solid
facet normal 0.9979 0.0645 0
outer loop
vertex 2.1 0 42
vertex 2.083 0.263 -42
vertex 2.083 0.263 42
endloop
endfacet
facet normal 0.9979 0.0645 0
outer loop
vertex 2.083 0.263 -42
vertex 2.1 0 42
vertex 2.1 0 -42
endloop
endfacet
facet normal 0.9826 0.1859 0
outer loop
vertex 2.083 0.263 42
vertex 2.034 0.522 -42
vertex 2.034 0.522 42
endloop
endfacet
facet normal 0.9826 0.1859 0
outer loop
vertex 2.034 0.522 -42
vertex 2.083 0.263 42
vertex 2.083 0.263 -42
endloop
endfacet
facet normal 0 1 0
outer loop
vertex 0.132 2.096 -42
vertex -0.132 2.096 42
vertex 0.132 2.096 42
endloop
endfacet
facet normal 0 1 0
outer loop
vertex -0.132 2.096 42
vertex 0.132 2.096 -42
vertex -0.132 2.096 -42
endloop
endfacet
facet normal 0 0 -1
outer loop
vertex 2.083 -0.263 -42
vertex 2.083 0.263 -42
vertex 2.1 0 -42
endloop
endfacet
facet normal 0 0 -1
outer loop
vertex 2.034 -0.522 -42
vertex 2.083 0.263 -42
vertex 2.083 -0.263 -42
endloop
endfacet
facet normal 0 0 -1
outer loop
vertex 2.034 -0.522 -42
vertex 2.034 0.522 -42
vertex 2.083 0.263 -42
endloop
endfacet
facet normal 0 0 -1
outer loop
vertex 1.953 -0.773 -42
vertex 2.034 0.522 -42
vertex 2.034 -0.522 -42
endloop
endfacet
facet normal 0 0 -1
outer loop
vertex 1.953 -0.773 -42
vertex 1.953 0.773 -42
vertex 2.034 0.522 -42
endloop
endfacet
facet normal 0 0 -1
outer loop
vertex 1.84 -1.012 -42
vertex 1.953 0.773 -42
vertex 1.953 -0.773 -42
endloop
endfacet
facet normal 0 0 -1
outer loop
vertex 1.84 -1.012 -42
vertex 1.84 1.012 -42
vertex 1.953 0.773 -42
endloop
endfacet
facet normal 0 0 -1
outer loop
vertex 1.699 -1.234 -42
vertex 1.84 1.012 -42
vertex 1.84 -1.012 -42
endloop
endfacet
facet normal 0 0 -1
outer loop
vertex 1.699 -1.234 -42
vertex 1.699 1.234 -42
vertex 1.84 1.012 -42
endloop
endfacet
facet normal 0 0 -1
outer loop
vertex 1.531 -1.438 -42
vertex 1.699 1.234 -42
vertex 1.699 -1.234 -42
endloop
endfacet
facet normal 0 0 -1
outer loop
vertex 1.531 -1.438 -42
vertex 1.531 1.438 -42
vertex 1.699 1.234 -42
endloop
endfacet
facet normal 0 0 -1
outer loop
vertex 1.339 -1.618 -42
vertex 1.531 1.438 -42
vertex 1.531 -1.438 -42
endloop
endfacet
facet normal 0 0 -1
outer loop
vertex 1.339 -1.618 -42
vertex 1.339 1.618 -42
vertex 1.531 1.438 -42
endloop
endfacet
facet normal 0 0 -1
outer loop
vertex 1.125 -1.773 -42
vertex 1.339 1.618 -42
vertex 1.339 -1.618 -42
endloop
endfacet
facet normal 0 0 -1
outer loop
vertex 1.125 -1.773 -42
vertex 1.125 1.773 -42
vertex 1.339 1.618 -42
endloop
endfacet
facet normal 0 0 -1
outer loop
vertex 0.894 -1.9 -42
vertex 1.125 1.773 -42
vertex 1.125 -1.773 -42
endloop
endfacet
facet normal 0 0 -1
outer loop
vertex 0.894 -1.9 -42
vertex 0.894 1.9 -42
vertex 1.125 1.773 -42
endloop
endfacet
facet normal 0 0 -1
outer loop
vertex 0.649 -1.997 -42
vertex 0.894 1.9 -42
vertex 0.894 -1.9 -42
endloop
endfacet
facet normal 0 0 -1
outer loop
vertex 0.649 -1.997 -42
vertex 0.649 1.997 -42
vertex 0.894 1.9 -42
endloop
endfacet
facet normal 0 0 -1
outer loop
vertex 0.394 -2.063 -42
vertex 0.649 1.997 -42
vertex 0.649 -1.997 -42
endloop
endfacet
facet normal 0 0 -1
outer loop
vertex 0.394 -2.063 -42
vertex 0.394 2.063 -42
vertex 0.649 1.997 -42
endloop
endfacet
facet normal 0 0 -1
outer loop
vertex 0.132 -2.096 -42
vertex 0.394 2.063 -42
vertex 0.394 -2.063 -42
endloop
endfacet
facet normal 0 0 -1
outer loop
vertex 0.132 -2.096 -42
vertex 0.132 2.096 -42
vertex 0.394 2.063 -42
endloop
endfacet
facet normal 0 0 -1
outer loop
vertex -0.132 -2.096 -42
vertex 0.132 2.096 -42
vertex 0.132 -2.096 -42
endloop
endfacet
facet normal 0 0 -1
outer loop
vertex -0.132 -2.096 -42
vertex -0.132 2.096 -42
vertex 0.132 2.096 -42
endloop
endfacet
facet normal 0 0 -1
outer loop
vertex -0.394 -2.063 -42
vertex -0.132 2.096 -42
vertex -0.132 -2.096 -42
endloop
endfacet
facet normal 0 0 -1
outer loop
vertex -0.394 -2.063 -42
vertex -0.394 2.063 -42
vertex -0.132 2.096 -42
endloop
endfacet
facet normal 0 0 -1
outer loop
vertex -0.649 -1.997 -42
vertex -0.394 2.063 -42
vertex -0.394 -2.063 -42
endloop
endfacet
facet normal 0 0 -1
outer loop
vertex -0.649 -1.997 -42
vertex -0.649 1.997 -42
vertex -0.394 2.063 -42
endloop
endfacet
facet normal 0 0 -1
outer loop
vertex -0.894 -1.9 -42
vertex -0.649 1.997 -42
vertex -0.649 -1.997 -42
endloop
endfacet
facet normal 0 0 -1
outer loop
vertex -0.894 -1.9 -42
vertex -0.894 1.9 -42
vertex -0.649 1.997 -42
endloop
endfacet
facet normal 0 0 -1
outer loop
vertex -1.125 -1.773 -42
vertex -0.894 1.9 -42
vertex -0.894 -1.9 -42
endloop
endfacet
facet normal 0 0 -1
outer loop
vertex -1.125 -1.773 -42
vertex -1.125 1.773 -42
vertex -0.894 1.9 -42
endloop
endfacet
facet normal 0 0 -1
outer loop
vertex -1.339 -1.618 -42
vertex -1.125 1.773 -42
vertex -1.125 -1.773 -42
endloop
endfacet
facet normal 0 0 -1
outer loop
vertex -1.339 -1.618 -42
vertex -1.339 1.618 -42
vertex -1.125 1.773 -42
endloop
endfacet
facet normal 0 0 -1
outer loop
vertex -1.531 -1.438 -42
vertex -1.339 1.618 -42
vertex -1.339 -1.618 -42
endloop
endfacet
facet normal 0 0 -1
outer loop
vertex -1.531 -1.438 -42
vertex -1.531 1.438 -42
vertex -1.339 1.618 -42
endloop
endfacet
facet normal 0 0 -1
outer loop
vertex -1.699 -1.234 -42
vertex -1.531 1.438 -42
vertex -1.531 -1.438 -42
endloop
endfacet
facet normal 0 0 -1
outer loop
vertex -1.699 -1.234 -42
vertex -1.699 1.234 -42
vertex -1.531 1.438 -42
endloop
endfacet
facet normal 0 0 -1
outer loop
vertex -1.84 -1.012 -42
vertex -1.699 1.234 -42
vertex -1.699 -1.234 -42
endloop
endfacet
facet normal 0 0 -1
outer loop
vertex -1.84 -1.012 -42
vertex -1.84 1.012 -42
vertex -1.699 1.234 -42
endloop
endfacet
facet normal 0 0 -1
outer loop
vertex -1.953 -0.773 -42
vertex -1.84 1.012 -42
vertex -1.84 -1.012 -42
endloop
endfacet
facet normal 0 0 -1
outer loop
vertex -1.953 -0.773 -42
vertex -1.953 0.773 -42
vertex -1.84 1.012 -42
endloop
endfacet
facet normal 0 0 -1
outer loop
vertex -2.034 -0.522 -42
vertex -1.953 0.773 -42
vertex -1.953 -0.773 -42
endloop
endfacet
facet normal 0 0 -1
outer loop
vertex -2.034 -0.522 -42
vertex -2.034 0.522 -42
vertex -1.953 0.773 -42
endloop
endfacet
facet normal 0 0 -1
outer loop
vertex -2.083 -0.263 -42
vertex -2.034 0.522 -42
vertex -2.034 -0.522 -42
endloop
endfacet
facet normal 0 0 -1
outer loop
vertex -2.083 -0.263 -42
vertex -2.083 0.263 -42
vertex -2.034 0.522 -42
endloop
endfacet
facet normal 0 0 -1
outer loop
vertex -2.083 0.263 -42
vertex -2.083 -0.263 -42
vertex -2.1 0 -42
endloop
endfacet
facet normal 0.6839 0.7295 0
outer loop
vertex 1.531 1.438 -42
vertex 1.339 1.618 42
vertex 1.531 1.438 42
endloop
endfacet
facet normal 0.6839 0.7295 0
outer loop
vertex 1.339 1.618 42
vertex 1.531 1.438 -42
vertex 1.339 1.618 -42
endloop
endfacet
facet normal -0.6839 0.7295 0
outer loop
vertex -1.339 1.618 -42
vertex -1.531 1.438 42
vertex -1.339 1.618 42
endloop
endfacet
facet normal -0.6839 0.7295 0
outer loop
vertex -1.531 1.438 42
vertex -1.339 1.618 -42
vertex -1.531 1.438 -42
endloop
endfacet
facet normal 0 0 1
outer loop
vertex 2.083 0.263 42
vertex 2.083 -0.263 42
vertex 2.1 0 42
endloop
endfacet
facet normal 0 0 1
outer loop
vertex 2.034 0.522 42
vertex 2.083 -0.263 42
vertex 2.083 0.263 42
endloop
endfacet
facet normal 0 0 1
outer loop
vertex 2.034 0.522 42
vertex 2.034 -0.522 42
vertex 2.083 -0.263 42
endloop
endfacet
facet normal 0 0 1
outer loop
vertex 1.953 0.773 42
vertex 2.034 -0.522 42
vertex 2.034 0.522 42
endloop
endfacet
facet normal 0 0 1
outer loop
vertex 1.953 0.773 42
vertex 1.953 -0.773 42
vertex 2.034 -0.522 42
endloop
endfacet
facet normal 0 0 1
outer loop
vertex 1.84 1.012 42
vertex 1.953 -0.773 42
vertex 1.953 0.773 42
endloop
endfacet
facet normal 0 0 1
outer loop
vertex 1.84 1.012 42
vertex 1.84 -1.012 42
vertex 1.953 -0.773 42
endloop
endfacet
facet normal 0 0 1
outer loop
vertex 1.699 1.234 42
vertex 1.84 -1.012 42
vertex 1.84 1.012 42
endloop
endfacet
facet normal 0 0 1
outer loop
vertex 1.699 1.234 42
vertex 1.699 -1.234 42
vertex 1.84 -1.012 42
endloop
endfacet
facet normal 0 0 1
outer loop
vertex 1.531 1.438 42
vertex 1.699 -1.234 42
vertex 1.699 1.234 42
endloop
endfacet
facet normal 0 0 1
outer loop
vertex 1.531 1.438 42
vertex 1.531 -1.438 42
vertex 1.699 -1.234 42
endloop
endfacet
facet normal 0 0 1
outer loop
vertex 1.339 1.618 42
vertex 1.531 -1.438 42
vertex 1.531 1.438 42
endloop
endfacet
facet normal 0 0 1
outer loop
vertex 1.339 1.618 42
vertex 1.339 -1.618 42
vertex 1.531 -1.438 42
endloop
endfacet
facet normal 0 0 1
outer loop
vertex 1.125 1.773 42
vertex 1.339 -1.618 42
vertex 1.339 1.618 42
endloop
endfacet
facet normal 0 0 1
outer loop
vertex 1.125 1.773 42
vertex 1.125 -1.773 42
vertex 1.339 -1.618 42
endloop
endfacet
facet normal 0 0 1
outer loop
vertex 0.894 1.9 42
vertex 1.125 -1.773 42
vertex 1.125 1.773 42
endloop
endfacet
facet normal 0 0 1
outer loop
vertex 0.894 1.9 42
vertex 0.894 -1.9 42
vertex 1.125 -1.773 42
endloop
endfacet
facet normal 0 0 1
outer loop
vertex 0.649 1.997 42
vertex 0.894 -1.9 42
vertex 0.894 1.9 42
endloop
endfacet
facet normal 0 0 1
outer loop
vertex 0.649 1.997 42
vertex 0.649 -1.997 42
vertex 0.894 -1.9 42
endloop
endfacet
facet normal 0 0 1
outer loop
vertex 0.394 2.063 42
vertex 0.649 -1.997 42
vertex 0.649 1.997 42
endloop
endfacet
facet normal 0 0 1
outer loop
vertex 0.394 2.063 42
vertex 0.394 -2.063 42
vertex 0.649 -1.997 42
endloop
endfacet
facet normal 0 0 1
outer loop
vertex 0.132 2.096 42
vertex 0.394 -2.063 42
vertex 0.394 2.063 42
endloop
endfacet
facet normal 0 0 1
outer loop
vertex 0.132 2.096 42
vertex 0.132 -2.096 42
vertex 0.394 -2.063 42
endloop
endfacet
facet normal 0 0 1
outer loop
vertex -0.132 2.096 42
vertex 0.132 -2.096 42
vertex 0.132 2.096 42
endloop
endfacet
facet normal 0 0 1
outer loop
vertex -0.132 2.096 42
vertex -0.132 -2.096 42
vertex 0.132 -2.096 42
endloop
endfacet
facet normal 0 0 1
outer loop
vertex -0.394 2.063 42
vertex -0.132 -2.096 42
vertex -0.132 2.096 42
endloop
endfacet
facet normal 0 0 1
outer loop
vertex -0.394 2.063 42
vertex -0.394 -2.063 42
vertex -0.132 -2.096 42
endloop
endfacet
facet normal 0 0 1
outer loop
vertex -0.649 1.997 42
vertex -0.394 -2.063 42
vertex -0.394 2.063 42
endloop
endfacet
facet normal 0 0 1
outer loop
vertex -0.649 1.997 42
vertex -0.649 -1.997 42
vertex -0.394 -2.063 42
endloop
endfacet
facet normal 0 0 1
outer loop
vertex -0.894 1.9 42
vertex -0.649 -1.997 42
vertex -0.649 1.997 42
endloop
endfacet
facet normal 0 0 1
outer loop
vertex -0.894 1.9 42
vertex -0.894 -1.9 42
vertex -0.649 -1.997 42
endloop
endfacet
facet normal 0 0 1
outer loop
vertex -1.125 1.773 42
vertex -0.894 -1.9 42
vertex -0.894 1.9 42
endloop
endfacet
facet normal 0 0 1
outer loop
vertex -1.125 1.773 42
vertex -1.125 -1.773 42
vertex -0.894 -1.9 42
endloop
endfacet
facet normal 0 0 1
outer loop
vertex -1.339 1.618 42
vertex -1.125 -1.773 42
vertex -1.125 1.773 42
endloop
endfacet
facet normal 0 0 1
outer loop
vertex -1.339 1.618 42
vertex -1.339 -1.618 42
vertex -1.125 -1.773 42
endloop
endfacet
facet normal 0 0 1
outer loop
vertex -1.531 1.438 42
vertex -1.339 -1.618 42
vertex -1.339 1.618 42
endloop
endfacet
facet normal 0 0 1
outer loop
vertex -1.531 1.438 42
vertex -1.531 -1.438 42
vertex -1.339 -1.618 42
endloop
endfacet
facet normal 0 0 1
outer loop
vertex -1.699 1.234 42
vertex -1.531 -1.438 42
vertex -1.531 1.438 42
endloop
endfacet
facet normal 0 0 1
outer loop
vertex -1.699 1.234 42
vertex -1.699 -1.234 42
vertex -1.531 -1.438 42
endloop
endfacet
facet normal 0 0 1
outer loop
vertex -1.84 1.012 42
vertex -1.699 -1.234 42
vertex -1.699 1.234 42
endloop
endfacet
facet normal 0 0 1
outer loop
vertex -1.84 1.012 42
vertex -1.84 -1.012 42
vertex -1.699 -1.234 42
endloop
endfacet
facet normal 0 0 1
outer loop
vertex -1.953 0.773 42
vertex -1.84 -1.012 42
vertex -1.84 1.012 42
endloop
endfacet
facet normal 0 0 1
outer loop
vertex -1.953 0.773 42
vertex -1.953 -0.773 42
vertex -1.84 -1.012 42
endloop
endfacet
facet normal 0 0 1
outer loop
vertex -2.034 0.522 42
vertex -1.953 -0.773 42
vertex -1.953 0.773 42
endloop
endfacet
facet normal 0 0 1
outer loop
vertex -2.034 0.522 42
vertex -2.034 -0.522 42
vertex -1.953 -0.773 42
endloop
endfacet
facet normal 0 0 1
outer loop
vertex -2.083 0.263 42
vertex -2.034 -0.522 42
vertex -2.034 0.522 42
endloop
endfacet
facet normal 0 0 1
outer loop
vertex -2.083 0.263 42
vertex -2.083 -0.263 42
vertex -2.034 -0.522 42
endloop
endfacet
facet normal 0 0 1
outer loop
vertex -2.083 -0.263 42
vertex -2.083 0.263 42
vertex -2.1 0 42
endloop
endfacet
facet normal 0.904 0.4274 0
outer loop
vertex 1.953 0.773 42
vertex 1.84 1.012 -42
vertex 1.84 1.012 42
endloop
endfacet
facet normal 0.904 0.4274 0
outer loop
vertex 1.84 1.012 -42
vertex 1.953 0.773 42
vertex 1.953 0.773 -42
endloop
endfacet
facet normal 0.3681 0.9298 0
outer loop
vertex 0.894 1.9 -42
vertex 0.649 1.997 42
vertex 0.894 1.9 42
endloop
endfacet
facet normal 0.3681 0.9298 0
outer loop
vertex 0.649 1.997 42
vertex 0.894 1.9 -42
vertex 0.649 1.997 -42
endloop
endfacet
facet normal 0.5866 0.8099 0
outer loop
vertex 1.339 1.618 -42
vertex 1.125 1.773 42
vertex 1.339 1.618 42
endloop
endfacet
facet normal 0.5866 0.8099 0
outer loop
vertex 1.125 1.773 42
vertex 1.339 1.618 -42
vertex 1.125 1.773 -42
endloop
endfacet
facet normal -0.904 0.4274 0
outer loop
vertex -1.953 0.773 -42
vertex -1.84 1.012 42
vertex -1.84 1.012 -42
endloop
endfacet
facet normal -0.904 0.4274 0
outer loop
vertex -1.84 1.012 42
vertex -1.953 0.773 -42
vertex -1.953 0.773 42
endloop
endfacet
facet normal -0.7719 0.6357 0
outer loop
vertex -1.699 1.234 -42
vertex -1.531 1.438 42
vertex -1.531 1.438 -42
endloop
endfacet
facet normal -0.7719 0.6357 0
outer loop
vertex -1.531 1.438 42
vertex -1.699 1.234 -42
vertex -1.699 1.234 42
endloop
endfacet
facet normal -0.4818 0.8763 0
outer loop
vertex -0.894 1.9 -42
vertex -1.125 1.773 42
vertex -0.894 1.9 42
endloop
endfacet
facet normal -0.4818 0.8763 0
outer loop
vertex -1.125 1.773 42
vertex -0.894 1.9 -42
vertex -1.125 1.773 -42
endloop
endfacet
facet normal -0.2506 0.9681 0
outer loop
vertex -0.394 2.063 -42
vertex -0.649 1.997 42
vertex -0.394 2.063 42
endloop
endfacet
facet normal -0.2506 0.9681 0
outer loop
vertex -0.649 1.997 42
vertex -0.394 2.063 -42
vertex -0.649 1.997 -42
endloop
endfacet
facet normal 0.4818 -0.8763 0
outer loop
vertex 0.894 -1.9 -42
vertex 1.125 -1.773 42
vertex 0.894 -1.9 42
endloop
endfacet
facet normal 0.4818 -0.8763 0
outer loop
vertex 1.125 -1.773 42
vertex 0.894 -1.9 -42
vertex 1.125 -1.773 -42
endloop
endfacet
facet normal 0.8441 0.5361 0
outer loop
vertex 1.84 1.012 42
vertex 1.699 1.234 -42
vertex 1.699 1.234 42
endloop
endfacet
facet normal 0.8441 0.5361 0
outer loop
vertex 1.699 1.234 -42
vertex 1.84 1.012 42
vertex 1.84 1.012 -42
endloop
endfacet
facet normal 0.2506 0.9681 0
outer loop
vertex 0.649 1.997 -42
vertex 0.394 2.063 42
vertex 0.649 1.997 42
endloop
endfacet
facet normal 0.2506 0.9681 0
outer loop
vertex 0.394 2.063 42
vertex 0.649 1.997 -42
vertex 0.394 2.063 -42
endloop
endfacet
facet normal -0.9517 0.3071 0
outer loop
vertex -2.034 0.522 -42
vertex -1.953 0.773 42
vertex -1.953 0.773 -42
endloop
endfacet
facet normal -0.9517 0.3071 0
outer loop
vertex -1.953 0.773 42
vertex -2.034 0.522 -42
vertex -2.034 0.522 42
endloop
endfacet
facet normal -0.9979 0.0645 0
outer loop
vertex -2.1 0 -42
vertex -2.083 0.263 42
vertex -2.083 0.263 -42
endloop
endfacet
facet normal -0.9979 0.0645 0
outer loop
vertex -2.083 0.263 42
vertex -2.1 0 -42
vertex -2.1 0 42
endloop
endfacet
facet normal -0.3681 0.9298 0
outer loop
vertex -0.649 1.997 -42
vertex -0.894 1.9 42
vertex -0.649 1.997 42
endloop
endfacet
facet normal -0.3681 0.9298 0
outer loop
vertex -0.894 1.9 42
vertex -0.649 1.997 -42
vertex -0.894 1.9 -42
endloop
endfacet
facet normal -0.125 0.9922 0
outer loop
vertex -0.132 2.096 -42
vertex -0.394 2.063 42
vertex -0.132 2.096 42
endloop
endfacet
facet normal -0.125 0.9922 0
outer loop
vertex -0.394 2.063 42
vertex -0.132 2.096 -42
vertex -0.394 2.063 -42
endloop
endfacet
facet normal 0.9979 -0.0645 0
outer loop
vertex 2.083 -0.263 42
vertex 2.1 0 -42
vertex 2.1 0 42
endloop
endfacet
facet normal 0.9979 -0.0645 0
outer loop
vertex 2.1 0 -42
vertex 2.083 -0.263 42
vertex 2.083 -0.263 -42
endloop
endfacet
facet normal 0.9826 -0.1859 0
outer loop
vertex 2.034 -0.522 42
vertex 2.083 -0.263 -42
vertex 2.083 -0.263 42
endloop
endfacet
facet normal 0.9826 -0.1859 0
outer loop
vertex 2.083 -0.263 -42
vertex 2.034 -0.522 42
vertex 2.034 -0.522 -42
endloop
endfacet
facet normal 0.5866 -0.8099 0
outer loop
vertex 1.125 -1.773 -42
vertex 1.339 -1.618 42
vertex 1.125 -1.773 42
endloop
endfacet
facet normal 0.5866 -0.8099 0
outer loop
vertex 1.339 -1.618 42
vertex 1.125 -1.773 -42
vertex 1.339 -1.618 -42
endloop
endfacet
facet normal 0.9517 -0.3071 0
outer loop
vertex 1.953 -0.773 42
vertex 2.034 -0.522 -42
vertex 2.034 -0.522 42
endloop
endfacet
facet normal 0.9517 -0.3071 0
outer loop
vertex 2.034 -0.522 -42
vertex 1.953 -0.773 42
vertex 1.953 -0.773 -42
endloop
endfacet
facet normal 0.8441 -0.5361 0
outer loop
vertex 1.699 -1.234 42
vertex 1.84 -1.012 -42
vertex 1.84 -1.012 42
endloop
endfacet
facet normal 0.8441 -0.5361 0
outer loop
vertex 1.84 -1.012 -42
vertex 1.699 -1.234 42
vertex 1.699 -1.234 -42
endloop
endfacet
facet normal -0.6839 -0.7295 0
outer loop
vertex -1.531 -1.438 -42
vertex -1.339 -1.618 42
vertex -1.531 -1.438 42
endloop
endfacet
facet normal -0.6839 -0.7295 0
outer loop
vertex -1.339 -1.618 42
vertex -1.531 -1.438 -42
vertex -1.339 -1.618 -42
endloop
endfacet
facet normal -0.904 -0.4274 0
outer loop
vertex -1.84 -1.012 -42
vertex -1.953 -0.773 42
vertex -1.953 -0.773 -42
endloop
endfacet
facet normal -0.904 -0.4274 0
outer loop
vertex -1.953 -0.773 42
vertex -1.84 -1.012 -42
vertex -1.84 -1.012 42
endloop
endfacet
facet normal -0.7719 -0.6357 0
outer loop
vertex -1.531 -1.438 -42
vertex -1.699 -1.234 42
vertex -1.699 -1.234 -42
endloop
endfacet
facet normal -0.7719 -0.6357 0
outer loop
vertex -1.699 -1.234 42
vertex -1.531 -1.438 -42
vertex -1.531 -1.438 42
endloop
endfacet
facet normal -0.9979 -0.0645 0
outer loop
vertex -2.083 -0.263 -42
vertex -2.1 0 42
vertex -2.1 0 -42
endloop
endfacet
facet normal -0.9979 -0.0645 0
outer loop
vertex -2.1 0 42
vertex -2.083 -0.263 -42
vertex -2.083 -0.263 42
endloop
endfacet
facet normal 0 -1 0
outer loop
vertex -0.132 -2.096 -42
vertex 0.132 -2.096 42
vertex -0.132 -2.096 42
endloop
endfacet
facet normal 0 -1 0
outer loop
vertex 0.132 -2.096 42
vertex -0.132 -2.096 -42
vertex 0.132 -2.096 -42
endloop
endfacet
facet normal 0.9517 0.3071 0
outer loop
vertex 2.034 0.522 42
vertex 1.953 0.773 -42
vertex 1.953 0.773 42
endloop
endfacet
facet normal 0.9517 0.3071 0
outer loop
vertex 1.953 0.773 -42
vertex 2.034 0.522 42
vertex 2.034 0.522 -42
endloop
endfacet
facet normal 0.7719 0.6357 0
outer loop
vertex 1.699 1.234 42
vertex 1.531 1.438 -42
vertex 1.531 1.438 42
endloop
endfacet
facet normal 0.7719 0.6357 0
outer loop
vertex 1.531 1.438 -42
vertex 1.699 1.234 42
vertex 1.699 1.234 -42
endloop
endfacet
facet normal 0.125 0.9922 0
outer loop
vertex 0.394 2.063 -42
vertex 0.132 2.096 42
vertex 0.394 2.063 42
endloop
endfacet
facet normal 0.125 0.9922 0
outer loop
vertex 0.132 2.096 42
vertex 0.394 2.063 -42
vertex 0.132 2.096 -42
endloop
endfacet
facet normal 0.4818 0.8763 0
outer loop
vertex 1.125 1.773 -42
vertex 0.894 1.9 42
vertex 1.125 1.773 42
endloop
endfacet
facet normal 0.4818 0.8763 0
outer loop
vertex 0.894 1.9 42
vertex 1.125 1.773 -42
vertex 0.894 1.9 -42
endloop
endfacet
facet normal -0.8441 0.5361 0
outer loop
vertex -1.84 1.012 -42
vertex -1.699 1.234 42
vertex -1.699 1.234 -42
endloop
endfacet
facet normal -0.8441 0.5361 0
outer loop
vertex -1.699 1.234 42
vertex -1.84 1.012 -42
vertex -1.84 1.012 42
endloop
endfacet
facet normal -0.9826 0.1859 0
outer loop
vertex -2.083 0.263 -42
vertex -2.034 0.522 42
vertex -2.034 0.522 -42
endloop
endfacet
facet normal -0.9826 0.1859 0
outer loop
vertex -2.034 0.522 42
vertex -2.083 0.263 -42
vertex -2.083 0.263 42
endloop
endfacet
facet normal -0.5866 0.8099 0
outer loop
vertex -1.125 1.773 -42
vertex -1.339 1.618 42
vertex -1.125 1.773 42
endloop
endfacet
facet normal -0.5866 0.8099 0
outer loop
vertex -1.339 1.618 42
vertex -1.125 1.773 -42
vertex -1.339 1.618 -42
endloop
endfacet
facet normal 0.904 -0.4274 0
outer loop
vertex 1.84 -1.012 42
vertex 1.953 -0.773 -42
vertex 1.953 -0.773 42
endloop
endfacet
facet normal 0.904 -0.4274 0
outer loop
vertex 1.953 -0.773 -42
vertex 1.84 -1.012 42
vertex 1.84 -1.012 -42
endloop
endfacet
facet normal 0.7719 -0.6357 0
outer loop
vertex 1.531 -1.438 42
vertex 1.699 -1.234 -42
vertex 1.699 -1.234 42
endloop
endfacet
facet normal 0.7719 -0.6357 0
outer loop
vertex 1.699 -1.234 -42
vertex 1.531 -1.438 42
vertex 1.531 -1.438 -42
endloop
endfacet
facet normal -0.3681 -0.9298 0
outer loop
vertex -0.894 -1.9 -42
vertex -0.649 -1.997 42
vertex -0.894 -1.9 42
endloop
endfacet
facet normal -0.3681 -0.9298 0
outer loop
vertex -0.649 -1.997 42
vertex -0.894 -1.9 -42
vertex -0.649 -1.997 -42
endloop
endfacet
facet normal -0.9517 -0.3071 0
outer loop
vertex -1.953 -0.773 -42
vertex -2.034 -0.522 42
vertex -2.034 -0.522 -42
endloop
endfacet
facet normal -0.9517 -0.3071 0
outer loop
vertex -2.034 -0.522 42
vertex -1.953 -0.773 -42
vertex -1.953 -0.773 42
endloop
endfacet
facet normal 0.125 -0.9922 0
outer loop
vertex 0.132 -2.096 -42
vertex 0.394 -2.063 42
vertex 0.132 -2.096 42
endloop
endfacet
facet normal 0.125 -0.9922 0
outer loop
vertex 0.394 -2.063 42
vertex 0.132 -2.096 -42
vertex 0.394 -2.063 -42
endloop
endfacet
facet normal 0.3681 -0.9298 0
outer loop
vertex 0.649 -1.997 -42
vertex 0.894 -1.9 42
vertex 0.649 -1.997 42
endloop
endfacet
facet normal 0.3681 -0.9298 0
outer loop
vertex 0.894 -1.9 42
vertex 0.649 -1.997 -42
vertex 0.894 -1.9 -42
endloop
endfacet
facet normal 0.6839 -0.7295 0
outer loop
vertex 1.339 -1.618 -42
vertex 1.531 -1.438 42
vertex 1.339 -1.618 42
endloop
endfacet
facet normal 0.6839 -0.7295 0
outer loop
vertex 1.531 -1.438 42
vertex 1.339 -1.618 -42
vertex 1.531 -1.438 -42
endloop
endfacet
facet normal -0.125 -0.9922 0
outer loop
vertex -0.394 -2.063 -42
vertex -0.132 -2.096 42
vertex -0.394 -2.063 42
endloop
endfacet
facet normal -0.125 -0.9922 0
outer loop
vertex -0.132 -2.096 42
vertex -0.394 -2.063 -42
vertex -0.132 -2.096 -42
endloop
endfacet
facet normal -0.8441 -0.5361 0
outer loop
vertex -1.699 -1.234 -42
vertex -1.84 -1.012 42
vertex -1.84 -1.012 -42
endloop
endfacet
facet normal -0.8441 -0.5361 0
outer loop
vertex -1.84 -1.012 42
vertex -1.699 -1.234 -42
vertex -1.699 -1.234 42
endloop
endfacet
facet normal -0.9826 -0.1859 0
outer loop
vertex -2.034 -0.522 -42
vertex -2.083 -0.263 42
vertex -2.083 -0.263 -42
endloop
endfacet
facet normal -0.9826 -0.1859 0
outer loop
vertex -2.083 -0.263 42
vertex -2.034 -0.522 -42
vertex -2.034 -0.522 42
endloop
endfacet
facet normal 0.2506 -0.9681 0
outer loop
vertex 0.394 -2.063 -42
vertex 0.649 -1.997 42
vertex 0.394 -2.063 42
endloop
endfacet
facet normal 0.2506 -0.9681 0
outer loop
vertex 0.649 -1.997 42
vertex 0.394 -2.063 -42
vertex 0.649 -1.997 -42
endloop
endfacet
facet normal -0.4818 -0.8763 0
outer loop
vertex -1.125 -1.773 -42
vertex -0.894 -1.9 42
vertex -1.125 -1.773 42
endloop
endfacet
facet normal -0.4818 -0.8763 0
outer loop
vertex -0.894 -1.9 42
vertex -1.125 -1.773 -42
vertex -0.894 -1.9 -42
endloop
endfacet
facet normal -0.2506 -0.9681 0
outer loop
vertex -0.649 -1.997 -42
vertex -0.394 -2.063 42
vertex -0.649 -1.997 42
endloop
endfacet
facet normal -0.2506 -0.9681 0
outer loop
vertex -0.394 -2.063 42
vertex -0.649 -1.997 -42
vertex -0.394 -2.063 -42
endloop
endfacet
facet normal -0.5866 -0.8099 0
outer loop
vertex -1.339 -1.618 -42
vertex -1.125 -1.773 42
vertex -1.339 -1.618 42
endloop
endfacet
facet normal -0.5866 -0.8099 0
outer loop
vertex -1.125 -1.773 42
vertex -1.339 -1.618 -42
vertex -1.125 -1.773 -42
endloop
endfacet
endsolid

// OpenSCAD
$fn = 50;


difference() {
	union() {
		translate(v = [0, 0, -42.0000000000]) {
			cylinder(h = 84, r = 2.1000000000);
		}
	}
	union() {
		translate(v = [0, 0, -100.0000000000]) {
			cylinder(h = 200, r = 0);
		}
	}
}
